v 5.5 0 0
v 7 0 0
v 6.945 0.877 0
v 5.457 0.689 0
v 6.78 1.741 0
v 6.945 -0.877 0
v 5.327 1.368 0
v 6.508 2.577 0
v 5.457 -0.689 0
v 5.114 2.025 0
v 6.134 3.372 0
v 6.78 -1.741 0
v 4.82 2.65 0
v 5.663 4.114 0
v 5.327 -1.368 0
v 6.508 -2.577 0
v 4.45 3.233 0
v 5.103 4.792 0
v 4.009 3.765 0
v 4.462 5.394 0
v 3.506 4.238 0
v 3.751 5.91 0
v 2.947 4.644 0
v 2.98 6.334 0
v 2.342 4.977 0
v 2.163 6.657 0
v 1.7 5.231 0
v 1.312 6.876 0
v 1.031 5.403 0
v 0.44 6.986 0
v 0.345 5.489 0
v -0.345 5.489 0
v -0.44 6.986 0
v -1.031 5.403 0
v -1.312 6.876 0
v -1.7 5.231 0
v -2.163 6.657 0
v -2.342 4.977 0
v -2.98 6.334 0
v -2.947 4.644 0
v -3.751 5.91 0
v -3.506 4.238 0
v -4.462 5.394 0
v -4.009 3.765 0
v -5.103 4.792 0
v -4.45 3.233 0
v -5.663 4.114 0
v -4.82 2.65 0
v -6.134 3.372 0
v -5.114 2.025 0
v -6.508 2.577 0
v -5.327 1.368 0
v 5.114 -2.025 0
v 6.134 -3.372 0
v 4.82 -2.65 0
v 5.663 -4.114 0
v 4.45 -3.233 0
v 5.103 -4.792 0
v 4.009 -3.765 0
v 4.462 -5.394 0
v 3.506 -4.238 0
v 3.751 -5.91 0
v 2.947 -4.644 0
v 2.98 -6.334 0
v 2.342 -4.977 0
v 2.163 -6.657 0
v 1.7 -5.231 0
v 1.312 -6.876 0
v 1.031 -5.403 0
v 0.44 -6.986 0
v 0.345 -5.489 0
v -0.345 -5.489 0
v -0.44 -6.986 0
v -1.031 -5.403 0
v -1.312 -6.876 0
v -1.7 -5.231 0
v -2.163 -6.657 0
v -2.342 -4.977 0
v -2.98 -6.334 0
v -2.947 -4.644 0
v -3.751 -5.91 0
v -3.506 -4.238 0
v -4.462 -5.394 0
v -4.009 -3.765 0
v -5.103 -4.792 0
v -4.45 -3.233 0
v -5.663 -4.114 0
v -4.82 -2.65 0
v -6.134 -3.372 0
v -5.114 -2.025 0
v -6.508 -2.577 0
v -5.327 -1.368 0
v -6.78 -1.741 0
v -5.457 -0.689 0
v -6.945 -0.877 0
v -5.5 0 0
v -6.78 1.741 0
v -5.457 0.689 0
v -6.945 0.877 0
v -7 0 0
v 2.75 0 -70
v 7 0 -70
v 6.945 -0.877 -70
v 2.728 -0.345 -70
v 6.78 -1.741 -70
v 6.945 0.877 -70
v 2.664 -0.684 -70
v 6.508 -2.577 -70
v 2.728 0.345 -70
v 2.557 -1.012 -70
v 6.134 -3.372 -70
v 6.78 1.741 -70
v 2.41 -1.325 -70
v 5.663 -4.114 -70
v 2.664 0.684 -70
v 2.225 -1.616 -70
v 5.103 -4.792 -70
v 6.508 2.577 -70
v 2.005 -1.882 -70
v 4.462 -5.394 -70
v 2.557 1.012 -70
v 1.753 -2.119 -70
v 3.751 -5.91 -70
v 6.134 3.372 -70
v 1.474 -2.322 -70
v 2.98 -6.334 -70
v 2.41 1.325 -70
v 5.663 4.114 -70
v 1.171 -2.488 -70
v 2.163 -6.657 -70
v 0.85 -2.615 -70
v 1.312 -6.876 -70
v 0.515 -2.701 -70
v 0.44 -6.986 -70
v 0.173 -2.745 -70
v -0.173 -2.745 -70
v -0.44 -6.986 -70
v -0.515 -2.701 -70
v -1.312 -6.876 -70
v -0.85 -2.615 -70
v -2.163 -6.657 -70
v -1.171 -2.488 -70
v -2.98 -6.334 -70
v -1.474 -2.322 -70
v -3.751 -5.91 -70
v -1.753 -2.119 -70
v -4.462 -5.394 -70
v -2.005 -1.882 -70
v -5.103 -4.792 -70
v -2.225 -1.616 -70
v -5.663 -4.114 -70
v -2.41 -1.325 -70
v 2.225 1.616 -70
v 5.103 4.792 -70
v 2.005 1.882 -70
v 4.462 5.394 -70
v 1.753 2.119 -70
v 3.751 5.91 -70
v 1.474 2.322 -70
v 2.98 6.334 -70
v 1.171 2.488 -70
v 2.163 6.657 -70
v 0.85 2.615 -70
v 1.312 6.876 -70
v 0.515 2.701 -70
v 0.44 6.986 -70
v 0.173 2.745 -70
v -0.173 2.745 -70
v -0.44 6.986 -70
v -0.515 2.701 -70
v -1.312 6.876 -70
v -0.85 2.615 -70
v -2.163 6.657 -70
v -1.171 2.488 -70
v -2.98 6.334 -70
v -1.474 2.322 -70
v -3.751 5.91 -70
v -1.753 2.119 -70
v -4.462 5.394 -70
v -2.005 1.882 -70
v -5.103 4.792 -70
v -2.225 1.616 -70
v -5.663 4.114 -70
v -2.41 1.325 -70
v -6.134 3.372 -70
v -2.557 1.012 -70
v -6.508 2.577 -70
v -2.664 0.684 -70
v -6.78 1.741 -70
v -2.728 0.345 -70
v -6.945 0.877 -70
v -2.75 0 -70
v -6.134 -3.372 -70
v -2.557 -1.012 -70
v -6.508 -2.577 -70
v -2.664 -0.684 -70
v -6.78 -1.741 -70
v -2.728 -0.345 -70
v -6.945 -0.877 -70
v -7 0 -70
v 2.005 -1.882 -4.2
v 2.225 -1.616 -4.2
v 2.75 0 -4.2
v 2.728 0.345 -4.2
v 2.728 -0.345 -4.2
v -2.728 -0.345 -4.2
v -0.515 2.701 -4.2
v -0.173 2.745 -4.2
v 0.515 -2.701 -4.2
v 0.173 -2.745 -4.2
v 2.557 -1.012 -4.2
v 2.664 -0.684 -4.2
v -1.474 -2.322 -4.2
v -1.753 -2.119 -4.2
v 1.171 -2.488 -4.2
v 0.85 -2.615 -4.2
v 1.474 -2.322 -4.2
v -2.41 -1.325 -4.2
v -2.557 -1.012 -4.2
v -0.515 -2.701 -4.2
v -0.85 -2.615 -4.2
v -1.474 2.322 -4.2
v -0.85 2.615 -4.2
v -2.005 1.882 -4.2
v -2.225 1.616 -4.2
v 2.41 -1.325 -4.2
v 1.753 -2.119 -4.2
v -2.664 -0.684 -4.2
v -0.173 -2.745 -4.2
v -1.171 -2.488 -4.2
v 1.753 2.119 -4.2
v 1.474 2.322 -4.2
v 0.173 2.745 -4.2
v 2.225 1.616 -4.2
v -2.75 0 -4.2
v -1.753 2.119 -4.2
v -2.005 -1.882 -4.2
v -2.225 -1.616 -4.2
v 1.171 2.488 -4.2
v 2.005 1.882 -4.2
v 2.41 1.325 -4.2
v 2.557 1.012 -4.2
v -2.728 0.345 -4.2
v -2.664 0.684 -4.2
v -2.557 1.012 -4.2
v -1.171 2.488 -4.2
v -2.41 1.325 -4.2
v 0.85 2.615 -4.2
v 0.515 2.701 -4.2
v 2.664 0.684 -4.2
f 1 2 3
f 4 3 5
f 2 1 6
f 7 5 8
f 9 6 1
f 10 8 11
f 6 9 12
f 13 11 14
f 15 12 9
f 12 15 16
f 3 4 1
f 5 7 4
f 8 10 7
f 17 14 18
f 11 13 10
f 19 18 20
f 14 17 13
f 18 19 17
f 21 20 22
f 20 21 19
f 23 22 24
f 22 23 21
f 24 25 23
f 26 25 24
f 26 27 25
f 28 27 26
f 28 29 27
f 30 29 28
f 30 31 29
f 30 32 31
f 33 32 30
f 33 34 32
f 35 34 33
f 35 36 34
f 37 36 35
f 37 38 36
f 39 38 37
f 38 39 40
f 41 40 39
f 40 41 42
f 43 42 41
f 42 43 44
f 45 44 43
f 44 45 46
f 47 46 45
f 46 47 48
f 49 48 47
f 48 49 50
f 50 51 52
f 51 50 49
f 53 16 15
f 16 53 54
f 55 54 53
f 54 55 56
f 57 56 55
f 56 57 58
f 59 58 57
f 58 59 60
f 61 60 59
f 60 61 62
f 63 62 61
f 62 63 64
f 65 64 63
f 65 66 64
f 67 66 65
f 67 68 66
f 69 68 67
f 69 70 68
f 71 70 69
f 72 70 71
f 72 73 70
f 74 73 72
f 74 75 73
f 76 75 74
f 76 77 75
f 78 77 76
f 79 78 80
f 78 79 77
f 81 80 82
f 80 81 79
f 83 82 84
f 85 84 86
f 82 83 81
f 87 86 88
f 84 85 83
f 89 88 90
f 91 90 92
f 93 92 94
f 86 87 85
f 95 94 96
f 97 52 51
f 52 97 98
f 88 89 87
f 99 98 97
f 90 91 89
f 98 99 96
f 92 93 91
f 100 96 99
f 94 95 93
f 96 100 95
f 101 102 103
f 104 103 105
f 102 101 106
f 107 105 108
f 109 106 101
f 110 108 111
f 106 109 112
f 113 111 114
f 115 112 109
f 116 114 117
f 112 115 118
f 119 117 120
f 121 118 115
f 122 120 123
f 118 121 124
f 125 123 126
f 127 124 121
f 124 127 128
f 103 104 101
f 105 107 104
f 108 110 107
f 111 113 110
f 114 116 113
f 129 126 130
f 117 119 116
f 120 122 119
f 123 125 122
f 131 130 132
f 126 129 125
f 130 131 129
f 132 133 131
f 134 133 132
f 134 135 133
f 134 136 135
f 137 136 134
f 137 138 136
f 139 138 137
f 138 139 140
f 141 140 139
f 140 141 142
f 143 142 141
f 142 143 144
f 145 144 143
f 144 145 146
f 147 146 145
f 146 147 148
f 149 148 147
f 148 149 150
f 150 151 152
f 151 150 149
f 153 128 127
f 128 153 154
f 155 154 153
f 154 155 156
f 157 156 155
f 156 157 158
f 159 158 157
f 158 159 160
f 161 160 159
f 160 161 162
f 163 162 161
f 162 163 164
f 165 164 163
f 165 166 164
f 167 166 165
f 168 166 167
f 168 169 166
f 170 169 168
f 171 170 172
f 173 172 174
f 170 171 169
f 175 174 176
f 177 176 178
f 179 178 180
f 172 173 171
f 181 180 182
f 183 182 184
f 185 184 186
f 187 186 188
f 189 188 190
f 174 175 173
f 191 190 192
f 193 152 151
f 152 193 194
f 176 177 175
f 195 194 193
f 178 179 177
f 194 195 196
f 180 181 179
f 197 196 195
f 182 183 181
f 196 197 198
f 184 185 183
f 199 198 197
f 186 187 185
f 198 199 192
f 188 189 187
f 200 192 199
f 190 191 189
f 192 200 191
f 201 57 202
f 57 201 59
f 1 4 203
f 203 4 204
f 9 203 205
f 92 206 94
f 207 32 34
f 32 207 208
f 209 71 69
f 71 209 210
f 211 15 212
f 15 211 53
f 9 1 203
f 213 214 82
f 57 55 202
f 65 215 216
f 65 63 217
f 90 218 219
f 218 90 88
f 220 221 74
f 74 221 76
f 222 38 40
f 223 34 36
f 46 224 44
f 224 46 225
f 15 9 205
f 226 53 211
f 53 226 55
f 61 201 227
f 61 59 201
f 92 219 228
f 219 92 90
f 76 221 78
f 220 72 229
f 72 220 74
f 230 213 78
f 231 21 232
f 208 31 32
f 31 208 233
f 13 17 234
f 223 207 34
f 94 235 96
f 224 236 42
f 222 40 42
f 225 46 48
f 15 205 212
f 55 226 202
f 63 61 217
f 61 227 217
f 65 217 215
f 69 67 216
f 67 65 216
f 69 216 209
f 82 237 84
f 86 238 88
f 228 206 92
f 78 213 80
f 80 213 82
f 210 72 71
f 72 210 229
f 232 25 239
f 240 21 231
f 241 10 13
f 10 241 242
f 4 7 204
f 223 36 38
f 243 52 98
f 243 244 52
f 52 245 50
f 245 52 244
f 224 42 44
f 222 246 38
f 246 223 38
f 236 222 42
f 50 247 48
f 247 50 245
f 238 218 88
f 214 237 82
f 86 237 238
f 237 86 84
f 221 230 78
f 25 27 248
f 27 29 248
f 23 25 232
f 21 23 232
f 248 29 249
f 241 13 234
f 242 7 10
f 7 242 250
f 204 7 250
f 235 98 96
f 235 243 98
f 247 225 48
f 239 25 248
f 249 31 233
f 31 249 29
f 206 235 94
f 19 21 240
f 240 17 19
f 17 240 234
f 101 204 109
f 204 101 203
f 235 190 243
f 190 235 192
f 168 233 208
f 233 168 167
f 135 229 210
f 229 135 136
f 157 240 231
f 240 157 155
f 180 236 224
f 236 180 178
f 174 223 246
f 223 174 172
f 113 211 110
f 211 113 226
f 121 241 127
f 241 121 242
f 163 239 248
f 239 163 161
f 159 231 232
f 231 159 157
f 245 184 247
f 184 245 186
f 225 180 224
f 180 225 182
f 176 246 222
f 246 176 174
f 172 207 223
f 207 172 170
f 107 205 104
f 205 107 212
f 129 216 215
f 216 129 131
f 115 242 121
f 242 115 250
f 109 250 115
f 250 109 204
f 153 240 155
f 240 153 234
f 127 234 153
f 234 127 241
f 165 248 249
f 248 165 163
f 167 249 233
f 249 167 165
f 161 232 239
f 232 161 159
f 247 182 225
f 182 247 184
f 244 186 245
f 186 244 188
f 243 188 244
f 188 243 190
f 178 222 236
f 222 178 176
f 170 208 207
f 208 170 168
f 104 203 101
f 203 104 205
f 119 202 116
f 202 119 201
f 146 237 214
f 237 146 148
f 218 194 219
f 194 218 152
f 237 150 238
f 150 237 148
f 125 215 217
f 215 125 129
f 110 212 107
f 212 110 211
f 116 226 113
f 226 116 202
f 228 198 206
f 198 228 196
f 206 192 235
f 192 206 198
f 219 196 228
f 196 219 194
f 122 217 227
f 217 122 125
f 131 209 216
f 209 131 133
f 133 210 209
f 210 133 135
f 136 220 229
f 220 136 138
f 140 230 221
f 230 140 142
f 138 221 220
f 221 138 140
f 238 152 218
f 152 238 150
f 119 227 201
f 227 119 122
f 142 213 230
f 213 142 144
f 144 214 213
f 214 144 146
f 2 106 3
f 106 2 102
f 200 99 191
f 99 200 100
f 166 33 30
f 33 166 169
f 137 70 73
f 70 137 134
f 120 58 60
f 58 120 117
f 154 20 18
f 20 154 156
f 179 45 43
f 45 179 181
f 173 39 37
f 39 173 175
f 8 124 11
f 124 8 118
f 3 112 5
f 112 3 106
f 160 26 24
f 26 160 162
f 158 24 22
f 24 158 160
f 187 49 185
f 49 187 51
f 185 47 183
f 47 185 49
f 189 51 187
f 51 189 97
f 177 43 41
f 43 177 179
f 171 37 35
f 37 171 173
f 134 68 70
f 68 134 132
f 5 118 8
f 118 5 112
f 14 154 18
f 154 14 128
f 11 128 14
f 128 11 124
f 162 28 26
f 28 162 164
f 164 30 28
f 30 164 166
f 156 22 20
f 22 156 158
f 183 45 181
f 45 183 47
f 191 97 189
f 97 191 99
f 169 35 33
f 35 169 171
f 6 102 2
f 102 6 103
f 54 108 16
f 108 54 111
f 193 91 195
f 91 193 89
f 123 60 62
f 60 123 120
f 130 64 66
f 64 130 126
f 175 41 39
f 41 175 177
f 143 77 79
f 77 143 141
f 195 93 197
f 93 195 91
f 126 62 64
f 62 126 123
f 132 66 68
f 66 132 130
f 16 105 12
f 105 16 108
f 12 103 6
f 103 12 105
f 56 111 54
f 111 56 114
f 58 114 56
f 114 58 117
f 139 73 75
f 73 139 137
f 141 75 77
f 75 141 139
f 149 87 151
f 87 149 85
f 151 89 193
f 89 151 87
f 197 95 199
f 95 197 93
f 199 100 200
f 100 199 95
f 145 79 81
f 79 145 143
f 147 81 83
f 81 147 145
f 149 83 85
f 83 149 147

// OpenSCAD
$fn = 50;


difference() {
	union() {
		translate(v = [0, 0, -70.0000000000]) {
			cylinder(h = 70, r = 7.0000000000);
		}
		cylinder(h = 0, r = 10.0000000000);
	}
	union() {
		translate(v = [0, 0, 0]) {
			rotate(a = [0, 0, 0]) {
				difference() {
					union() {
						#translate(v = [0, 0, -70.0000000000]) {
							cylinder(h = 70, r = 2.2500000000);
						}
						#translate(v = [0, 0, -4.2000000000]) {
							cylinder(h = 4.2000000000, r = 7.0000000000, r1 = 2.7500000000, r2 = 5.5000000000);
						}
						#translate(v = [0, 0, -70.0000000000]) {
							cylinder(h = 70, r = 2.7500000000);
						}
						#translate(v = [0, 0, -70.0000000000]) {
							cylinder(h = 70, r = 2.2500000000);
						}
					}
					union();
				}
			}
		}
	}
}
